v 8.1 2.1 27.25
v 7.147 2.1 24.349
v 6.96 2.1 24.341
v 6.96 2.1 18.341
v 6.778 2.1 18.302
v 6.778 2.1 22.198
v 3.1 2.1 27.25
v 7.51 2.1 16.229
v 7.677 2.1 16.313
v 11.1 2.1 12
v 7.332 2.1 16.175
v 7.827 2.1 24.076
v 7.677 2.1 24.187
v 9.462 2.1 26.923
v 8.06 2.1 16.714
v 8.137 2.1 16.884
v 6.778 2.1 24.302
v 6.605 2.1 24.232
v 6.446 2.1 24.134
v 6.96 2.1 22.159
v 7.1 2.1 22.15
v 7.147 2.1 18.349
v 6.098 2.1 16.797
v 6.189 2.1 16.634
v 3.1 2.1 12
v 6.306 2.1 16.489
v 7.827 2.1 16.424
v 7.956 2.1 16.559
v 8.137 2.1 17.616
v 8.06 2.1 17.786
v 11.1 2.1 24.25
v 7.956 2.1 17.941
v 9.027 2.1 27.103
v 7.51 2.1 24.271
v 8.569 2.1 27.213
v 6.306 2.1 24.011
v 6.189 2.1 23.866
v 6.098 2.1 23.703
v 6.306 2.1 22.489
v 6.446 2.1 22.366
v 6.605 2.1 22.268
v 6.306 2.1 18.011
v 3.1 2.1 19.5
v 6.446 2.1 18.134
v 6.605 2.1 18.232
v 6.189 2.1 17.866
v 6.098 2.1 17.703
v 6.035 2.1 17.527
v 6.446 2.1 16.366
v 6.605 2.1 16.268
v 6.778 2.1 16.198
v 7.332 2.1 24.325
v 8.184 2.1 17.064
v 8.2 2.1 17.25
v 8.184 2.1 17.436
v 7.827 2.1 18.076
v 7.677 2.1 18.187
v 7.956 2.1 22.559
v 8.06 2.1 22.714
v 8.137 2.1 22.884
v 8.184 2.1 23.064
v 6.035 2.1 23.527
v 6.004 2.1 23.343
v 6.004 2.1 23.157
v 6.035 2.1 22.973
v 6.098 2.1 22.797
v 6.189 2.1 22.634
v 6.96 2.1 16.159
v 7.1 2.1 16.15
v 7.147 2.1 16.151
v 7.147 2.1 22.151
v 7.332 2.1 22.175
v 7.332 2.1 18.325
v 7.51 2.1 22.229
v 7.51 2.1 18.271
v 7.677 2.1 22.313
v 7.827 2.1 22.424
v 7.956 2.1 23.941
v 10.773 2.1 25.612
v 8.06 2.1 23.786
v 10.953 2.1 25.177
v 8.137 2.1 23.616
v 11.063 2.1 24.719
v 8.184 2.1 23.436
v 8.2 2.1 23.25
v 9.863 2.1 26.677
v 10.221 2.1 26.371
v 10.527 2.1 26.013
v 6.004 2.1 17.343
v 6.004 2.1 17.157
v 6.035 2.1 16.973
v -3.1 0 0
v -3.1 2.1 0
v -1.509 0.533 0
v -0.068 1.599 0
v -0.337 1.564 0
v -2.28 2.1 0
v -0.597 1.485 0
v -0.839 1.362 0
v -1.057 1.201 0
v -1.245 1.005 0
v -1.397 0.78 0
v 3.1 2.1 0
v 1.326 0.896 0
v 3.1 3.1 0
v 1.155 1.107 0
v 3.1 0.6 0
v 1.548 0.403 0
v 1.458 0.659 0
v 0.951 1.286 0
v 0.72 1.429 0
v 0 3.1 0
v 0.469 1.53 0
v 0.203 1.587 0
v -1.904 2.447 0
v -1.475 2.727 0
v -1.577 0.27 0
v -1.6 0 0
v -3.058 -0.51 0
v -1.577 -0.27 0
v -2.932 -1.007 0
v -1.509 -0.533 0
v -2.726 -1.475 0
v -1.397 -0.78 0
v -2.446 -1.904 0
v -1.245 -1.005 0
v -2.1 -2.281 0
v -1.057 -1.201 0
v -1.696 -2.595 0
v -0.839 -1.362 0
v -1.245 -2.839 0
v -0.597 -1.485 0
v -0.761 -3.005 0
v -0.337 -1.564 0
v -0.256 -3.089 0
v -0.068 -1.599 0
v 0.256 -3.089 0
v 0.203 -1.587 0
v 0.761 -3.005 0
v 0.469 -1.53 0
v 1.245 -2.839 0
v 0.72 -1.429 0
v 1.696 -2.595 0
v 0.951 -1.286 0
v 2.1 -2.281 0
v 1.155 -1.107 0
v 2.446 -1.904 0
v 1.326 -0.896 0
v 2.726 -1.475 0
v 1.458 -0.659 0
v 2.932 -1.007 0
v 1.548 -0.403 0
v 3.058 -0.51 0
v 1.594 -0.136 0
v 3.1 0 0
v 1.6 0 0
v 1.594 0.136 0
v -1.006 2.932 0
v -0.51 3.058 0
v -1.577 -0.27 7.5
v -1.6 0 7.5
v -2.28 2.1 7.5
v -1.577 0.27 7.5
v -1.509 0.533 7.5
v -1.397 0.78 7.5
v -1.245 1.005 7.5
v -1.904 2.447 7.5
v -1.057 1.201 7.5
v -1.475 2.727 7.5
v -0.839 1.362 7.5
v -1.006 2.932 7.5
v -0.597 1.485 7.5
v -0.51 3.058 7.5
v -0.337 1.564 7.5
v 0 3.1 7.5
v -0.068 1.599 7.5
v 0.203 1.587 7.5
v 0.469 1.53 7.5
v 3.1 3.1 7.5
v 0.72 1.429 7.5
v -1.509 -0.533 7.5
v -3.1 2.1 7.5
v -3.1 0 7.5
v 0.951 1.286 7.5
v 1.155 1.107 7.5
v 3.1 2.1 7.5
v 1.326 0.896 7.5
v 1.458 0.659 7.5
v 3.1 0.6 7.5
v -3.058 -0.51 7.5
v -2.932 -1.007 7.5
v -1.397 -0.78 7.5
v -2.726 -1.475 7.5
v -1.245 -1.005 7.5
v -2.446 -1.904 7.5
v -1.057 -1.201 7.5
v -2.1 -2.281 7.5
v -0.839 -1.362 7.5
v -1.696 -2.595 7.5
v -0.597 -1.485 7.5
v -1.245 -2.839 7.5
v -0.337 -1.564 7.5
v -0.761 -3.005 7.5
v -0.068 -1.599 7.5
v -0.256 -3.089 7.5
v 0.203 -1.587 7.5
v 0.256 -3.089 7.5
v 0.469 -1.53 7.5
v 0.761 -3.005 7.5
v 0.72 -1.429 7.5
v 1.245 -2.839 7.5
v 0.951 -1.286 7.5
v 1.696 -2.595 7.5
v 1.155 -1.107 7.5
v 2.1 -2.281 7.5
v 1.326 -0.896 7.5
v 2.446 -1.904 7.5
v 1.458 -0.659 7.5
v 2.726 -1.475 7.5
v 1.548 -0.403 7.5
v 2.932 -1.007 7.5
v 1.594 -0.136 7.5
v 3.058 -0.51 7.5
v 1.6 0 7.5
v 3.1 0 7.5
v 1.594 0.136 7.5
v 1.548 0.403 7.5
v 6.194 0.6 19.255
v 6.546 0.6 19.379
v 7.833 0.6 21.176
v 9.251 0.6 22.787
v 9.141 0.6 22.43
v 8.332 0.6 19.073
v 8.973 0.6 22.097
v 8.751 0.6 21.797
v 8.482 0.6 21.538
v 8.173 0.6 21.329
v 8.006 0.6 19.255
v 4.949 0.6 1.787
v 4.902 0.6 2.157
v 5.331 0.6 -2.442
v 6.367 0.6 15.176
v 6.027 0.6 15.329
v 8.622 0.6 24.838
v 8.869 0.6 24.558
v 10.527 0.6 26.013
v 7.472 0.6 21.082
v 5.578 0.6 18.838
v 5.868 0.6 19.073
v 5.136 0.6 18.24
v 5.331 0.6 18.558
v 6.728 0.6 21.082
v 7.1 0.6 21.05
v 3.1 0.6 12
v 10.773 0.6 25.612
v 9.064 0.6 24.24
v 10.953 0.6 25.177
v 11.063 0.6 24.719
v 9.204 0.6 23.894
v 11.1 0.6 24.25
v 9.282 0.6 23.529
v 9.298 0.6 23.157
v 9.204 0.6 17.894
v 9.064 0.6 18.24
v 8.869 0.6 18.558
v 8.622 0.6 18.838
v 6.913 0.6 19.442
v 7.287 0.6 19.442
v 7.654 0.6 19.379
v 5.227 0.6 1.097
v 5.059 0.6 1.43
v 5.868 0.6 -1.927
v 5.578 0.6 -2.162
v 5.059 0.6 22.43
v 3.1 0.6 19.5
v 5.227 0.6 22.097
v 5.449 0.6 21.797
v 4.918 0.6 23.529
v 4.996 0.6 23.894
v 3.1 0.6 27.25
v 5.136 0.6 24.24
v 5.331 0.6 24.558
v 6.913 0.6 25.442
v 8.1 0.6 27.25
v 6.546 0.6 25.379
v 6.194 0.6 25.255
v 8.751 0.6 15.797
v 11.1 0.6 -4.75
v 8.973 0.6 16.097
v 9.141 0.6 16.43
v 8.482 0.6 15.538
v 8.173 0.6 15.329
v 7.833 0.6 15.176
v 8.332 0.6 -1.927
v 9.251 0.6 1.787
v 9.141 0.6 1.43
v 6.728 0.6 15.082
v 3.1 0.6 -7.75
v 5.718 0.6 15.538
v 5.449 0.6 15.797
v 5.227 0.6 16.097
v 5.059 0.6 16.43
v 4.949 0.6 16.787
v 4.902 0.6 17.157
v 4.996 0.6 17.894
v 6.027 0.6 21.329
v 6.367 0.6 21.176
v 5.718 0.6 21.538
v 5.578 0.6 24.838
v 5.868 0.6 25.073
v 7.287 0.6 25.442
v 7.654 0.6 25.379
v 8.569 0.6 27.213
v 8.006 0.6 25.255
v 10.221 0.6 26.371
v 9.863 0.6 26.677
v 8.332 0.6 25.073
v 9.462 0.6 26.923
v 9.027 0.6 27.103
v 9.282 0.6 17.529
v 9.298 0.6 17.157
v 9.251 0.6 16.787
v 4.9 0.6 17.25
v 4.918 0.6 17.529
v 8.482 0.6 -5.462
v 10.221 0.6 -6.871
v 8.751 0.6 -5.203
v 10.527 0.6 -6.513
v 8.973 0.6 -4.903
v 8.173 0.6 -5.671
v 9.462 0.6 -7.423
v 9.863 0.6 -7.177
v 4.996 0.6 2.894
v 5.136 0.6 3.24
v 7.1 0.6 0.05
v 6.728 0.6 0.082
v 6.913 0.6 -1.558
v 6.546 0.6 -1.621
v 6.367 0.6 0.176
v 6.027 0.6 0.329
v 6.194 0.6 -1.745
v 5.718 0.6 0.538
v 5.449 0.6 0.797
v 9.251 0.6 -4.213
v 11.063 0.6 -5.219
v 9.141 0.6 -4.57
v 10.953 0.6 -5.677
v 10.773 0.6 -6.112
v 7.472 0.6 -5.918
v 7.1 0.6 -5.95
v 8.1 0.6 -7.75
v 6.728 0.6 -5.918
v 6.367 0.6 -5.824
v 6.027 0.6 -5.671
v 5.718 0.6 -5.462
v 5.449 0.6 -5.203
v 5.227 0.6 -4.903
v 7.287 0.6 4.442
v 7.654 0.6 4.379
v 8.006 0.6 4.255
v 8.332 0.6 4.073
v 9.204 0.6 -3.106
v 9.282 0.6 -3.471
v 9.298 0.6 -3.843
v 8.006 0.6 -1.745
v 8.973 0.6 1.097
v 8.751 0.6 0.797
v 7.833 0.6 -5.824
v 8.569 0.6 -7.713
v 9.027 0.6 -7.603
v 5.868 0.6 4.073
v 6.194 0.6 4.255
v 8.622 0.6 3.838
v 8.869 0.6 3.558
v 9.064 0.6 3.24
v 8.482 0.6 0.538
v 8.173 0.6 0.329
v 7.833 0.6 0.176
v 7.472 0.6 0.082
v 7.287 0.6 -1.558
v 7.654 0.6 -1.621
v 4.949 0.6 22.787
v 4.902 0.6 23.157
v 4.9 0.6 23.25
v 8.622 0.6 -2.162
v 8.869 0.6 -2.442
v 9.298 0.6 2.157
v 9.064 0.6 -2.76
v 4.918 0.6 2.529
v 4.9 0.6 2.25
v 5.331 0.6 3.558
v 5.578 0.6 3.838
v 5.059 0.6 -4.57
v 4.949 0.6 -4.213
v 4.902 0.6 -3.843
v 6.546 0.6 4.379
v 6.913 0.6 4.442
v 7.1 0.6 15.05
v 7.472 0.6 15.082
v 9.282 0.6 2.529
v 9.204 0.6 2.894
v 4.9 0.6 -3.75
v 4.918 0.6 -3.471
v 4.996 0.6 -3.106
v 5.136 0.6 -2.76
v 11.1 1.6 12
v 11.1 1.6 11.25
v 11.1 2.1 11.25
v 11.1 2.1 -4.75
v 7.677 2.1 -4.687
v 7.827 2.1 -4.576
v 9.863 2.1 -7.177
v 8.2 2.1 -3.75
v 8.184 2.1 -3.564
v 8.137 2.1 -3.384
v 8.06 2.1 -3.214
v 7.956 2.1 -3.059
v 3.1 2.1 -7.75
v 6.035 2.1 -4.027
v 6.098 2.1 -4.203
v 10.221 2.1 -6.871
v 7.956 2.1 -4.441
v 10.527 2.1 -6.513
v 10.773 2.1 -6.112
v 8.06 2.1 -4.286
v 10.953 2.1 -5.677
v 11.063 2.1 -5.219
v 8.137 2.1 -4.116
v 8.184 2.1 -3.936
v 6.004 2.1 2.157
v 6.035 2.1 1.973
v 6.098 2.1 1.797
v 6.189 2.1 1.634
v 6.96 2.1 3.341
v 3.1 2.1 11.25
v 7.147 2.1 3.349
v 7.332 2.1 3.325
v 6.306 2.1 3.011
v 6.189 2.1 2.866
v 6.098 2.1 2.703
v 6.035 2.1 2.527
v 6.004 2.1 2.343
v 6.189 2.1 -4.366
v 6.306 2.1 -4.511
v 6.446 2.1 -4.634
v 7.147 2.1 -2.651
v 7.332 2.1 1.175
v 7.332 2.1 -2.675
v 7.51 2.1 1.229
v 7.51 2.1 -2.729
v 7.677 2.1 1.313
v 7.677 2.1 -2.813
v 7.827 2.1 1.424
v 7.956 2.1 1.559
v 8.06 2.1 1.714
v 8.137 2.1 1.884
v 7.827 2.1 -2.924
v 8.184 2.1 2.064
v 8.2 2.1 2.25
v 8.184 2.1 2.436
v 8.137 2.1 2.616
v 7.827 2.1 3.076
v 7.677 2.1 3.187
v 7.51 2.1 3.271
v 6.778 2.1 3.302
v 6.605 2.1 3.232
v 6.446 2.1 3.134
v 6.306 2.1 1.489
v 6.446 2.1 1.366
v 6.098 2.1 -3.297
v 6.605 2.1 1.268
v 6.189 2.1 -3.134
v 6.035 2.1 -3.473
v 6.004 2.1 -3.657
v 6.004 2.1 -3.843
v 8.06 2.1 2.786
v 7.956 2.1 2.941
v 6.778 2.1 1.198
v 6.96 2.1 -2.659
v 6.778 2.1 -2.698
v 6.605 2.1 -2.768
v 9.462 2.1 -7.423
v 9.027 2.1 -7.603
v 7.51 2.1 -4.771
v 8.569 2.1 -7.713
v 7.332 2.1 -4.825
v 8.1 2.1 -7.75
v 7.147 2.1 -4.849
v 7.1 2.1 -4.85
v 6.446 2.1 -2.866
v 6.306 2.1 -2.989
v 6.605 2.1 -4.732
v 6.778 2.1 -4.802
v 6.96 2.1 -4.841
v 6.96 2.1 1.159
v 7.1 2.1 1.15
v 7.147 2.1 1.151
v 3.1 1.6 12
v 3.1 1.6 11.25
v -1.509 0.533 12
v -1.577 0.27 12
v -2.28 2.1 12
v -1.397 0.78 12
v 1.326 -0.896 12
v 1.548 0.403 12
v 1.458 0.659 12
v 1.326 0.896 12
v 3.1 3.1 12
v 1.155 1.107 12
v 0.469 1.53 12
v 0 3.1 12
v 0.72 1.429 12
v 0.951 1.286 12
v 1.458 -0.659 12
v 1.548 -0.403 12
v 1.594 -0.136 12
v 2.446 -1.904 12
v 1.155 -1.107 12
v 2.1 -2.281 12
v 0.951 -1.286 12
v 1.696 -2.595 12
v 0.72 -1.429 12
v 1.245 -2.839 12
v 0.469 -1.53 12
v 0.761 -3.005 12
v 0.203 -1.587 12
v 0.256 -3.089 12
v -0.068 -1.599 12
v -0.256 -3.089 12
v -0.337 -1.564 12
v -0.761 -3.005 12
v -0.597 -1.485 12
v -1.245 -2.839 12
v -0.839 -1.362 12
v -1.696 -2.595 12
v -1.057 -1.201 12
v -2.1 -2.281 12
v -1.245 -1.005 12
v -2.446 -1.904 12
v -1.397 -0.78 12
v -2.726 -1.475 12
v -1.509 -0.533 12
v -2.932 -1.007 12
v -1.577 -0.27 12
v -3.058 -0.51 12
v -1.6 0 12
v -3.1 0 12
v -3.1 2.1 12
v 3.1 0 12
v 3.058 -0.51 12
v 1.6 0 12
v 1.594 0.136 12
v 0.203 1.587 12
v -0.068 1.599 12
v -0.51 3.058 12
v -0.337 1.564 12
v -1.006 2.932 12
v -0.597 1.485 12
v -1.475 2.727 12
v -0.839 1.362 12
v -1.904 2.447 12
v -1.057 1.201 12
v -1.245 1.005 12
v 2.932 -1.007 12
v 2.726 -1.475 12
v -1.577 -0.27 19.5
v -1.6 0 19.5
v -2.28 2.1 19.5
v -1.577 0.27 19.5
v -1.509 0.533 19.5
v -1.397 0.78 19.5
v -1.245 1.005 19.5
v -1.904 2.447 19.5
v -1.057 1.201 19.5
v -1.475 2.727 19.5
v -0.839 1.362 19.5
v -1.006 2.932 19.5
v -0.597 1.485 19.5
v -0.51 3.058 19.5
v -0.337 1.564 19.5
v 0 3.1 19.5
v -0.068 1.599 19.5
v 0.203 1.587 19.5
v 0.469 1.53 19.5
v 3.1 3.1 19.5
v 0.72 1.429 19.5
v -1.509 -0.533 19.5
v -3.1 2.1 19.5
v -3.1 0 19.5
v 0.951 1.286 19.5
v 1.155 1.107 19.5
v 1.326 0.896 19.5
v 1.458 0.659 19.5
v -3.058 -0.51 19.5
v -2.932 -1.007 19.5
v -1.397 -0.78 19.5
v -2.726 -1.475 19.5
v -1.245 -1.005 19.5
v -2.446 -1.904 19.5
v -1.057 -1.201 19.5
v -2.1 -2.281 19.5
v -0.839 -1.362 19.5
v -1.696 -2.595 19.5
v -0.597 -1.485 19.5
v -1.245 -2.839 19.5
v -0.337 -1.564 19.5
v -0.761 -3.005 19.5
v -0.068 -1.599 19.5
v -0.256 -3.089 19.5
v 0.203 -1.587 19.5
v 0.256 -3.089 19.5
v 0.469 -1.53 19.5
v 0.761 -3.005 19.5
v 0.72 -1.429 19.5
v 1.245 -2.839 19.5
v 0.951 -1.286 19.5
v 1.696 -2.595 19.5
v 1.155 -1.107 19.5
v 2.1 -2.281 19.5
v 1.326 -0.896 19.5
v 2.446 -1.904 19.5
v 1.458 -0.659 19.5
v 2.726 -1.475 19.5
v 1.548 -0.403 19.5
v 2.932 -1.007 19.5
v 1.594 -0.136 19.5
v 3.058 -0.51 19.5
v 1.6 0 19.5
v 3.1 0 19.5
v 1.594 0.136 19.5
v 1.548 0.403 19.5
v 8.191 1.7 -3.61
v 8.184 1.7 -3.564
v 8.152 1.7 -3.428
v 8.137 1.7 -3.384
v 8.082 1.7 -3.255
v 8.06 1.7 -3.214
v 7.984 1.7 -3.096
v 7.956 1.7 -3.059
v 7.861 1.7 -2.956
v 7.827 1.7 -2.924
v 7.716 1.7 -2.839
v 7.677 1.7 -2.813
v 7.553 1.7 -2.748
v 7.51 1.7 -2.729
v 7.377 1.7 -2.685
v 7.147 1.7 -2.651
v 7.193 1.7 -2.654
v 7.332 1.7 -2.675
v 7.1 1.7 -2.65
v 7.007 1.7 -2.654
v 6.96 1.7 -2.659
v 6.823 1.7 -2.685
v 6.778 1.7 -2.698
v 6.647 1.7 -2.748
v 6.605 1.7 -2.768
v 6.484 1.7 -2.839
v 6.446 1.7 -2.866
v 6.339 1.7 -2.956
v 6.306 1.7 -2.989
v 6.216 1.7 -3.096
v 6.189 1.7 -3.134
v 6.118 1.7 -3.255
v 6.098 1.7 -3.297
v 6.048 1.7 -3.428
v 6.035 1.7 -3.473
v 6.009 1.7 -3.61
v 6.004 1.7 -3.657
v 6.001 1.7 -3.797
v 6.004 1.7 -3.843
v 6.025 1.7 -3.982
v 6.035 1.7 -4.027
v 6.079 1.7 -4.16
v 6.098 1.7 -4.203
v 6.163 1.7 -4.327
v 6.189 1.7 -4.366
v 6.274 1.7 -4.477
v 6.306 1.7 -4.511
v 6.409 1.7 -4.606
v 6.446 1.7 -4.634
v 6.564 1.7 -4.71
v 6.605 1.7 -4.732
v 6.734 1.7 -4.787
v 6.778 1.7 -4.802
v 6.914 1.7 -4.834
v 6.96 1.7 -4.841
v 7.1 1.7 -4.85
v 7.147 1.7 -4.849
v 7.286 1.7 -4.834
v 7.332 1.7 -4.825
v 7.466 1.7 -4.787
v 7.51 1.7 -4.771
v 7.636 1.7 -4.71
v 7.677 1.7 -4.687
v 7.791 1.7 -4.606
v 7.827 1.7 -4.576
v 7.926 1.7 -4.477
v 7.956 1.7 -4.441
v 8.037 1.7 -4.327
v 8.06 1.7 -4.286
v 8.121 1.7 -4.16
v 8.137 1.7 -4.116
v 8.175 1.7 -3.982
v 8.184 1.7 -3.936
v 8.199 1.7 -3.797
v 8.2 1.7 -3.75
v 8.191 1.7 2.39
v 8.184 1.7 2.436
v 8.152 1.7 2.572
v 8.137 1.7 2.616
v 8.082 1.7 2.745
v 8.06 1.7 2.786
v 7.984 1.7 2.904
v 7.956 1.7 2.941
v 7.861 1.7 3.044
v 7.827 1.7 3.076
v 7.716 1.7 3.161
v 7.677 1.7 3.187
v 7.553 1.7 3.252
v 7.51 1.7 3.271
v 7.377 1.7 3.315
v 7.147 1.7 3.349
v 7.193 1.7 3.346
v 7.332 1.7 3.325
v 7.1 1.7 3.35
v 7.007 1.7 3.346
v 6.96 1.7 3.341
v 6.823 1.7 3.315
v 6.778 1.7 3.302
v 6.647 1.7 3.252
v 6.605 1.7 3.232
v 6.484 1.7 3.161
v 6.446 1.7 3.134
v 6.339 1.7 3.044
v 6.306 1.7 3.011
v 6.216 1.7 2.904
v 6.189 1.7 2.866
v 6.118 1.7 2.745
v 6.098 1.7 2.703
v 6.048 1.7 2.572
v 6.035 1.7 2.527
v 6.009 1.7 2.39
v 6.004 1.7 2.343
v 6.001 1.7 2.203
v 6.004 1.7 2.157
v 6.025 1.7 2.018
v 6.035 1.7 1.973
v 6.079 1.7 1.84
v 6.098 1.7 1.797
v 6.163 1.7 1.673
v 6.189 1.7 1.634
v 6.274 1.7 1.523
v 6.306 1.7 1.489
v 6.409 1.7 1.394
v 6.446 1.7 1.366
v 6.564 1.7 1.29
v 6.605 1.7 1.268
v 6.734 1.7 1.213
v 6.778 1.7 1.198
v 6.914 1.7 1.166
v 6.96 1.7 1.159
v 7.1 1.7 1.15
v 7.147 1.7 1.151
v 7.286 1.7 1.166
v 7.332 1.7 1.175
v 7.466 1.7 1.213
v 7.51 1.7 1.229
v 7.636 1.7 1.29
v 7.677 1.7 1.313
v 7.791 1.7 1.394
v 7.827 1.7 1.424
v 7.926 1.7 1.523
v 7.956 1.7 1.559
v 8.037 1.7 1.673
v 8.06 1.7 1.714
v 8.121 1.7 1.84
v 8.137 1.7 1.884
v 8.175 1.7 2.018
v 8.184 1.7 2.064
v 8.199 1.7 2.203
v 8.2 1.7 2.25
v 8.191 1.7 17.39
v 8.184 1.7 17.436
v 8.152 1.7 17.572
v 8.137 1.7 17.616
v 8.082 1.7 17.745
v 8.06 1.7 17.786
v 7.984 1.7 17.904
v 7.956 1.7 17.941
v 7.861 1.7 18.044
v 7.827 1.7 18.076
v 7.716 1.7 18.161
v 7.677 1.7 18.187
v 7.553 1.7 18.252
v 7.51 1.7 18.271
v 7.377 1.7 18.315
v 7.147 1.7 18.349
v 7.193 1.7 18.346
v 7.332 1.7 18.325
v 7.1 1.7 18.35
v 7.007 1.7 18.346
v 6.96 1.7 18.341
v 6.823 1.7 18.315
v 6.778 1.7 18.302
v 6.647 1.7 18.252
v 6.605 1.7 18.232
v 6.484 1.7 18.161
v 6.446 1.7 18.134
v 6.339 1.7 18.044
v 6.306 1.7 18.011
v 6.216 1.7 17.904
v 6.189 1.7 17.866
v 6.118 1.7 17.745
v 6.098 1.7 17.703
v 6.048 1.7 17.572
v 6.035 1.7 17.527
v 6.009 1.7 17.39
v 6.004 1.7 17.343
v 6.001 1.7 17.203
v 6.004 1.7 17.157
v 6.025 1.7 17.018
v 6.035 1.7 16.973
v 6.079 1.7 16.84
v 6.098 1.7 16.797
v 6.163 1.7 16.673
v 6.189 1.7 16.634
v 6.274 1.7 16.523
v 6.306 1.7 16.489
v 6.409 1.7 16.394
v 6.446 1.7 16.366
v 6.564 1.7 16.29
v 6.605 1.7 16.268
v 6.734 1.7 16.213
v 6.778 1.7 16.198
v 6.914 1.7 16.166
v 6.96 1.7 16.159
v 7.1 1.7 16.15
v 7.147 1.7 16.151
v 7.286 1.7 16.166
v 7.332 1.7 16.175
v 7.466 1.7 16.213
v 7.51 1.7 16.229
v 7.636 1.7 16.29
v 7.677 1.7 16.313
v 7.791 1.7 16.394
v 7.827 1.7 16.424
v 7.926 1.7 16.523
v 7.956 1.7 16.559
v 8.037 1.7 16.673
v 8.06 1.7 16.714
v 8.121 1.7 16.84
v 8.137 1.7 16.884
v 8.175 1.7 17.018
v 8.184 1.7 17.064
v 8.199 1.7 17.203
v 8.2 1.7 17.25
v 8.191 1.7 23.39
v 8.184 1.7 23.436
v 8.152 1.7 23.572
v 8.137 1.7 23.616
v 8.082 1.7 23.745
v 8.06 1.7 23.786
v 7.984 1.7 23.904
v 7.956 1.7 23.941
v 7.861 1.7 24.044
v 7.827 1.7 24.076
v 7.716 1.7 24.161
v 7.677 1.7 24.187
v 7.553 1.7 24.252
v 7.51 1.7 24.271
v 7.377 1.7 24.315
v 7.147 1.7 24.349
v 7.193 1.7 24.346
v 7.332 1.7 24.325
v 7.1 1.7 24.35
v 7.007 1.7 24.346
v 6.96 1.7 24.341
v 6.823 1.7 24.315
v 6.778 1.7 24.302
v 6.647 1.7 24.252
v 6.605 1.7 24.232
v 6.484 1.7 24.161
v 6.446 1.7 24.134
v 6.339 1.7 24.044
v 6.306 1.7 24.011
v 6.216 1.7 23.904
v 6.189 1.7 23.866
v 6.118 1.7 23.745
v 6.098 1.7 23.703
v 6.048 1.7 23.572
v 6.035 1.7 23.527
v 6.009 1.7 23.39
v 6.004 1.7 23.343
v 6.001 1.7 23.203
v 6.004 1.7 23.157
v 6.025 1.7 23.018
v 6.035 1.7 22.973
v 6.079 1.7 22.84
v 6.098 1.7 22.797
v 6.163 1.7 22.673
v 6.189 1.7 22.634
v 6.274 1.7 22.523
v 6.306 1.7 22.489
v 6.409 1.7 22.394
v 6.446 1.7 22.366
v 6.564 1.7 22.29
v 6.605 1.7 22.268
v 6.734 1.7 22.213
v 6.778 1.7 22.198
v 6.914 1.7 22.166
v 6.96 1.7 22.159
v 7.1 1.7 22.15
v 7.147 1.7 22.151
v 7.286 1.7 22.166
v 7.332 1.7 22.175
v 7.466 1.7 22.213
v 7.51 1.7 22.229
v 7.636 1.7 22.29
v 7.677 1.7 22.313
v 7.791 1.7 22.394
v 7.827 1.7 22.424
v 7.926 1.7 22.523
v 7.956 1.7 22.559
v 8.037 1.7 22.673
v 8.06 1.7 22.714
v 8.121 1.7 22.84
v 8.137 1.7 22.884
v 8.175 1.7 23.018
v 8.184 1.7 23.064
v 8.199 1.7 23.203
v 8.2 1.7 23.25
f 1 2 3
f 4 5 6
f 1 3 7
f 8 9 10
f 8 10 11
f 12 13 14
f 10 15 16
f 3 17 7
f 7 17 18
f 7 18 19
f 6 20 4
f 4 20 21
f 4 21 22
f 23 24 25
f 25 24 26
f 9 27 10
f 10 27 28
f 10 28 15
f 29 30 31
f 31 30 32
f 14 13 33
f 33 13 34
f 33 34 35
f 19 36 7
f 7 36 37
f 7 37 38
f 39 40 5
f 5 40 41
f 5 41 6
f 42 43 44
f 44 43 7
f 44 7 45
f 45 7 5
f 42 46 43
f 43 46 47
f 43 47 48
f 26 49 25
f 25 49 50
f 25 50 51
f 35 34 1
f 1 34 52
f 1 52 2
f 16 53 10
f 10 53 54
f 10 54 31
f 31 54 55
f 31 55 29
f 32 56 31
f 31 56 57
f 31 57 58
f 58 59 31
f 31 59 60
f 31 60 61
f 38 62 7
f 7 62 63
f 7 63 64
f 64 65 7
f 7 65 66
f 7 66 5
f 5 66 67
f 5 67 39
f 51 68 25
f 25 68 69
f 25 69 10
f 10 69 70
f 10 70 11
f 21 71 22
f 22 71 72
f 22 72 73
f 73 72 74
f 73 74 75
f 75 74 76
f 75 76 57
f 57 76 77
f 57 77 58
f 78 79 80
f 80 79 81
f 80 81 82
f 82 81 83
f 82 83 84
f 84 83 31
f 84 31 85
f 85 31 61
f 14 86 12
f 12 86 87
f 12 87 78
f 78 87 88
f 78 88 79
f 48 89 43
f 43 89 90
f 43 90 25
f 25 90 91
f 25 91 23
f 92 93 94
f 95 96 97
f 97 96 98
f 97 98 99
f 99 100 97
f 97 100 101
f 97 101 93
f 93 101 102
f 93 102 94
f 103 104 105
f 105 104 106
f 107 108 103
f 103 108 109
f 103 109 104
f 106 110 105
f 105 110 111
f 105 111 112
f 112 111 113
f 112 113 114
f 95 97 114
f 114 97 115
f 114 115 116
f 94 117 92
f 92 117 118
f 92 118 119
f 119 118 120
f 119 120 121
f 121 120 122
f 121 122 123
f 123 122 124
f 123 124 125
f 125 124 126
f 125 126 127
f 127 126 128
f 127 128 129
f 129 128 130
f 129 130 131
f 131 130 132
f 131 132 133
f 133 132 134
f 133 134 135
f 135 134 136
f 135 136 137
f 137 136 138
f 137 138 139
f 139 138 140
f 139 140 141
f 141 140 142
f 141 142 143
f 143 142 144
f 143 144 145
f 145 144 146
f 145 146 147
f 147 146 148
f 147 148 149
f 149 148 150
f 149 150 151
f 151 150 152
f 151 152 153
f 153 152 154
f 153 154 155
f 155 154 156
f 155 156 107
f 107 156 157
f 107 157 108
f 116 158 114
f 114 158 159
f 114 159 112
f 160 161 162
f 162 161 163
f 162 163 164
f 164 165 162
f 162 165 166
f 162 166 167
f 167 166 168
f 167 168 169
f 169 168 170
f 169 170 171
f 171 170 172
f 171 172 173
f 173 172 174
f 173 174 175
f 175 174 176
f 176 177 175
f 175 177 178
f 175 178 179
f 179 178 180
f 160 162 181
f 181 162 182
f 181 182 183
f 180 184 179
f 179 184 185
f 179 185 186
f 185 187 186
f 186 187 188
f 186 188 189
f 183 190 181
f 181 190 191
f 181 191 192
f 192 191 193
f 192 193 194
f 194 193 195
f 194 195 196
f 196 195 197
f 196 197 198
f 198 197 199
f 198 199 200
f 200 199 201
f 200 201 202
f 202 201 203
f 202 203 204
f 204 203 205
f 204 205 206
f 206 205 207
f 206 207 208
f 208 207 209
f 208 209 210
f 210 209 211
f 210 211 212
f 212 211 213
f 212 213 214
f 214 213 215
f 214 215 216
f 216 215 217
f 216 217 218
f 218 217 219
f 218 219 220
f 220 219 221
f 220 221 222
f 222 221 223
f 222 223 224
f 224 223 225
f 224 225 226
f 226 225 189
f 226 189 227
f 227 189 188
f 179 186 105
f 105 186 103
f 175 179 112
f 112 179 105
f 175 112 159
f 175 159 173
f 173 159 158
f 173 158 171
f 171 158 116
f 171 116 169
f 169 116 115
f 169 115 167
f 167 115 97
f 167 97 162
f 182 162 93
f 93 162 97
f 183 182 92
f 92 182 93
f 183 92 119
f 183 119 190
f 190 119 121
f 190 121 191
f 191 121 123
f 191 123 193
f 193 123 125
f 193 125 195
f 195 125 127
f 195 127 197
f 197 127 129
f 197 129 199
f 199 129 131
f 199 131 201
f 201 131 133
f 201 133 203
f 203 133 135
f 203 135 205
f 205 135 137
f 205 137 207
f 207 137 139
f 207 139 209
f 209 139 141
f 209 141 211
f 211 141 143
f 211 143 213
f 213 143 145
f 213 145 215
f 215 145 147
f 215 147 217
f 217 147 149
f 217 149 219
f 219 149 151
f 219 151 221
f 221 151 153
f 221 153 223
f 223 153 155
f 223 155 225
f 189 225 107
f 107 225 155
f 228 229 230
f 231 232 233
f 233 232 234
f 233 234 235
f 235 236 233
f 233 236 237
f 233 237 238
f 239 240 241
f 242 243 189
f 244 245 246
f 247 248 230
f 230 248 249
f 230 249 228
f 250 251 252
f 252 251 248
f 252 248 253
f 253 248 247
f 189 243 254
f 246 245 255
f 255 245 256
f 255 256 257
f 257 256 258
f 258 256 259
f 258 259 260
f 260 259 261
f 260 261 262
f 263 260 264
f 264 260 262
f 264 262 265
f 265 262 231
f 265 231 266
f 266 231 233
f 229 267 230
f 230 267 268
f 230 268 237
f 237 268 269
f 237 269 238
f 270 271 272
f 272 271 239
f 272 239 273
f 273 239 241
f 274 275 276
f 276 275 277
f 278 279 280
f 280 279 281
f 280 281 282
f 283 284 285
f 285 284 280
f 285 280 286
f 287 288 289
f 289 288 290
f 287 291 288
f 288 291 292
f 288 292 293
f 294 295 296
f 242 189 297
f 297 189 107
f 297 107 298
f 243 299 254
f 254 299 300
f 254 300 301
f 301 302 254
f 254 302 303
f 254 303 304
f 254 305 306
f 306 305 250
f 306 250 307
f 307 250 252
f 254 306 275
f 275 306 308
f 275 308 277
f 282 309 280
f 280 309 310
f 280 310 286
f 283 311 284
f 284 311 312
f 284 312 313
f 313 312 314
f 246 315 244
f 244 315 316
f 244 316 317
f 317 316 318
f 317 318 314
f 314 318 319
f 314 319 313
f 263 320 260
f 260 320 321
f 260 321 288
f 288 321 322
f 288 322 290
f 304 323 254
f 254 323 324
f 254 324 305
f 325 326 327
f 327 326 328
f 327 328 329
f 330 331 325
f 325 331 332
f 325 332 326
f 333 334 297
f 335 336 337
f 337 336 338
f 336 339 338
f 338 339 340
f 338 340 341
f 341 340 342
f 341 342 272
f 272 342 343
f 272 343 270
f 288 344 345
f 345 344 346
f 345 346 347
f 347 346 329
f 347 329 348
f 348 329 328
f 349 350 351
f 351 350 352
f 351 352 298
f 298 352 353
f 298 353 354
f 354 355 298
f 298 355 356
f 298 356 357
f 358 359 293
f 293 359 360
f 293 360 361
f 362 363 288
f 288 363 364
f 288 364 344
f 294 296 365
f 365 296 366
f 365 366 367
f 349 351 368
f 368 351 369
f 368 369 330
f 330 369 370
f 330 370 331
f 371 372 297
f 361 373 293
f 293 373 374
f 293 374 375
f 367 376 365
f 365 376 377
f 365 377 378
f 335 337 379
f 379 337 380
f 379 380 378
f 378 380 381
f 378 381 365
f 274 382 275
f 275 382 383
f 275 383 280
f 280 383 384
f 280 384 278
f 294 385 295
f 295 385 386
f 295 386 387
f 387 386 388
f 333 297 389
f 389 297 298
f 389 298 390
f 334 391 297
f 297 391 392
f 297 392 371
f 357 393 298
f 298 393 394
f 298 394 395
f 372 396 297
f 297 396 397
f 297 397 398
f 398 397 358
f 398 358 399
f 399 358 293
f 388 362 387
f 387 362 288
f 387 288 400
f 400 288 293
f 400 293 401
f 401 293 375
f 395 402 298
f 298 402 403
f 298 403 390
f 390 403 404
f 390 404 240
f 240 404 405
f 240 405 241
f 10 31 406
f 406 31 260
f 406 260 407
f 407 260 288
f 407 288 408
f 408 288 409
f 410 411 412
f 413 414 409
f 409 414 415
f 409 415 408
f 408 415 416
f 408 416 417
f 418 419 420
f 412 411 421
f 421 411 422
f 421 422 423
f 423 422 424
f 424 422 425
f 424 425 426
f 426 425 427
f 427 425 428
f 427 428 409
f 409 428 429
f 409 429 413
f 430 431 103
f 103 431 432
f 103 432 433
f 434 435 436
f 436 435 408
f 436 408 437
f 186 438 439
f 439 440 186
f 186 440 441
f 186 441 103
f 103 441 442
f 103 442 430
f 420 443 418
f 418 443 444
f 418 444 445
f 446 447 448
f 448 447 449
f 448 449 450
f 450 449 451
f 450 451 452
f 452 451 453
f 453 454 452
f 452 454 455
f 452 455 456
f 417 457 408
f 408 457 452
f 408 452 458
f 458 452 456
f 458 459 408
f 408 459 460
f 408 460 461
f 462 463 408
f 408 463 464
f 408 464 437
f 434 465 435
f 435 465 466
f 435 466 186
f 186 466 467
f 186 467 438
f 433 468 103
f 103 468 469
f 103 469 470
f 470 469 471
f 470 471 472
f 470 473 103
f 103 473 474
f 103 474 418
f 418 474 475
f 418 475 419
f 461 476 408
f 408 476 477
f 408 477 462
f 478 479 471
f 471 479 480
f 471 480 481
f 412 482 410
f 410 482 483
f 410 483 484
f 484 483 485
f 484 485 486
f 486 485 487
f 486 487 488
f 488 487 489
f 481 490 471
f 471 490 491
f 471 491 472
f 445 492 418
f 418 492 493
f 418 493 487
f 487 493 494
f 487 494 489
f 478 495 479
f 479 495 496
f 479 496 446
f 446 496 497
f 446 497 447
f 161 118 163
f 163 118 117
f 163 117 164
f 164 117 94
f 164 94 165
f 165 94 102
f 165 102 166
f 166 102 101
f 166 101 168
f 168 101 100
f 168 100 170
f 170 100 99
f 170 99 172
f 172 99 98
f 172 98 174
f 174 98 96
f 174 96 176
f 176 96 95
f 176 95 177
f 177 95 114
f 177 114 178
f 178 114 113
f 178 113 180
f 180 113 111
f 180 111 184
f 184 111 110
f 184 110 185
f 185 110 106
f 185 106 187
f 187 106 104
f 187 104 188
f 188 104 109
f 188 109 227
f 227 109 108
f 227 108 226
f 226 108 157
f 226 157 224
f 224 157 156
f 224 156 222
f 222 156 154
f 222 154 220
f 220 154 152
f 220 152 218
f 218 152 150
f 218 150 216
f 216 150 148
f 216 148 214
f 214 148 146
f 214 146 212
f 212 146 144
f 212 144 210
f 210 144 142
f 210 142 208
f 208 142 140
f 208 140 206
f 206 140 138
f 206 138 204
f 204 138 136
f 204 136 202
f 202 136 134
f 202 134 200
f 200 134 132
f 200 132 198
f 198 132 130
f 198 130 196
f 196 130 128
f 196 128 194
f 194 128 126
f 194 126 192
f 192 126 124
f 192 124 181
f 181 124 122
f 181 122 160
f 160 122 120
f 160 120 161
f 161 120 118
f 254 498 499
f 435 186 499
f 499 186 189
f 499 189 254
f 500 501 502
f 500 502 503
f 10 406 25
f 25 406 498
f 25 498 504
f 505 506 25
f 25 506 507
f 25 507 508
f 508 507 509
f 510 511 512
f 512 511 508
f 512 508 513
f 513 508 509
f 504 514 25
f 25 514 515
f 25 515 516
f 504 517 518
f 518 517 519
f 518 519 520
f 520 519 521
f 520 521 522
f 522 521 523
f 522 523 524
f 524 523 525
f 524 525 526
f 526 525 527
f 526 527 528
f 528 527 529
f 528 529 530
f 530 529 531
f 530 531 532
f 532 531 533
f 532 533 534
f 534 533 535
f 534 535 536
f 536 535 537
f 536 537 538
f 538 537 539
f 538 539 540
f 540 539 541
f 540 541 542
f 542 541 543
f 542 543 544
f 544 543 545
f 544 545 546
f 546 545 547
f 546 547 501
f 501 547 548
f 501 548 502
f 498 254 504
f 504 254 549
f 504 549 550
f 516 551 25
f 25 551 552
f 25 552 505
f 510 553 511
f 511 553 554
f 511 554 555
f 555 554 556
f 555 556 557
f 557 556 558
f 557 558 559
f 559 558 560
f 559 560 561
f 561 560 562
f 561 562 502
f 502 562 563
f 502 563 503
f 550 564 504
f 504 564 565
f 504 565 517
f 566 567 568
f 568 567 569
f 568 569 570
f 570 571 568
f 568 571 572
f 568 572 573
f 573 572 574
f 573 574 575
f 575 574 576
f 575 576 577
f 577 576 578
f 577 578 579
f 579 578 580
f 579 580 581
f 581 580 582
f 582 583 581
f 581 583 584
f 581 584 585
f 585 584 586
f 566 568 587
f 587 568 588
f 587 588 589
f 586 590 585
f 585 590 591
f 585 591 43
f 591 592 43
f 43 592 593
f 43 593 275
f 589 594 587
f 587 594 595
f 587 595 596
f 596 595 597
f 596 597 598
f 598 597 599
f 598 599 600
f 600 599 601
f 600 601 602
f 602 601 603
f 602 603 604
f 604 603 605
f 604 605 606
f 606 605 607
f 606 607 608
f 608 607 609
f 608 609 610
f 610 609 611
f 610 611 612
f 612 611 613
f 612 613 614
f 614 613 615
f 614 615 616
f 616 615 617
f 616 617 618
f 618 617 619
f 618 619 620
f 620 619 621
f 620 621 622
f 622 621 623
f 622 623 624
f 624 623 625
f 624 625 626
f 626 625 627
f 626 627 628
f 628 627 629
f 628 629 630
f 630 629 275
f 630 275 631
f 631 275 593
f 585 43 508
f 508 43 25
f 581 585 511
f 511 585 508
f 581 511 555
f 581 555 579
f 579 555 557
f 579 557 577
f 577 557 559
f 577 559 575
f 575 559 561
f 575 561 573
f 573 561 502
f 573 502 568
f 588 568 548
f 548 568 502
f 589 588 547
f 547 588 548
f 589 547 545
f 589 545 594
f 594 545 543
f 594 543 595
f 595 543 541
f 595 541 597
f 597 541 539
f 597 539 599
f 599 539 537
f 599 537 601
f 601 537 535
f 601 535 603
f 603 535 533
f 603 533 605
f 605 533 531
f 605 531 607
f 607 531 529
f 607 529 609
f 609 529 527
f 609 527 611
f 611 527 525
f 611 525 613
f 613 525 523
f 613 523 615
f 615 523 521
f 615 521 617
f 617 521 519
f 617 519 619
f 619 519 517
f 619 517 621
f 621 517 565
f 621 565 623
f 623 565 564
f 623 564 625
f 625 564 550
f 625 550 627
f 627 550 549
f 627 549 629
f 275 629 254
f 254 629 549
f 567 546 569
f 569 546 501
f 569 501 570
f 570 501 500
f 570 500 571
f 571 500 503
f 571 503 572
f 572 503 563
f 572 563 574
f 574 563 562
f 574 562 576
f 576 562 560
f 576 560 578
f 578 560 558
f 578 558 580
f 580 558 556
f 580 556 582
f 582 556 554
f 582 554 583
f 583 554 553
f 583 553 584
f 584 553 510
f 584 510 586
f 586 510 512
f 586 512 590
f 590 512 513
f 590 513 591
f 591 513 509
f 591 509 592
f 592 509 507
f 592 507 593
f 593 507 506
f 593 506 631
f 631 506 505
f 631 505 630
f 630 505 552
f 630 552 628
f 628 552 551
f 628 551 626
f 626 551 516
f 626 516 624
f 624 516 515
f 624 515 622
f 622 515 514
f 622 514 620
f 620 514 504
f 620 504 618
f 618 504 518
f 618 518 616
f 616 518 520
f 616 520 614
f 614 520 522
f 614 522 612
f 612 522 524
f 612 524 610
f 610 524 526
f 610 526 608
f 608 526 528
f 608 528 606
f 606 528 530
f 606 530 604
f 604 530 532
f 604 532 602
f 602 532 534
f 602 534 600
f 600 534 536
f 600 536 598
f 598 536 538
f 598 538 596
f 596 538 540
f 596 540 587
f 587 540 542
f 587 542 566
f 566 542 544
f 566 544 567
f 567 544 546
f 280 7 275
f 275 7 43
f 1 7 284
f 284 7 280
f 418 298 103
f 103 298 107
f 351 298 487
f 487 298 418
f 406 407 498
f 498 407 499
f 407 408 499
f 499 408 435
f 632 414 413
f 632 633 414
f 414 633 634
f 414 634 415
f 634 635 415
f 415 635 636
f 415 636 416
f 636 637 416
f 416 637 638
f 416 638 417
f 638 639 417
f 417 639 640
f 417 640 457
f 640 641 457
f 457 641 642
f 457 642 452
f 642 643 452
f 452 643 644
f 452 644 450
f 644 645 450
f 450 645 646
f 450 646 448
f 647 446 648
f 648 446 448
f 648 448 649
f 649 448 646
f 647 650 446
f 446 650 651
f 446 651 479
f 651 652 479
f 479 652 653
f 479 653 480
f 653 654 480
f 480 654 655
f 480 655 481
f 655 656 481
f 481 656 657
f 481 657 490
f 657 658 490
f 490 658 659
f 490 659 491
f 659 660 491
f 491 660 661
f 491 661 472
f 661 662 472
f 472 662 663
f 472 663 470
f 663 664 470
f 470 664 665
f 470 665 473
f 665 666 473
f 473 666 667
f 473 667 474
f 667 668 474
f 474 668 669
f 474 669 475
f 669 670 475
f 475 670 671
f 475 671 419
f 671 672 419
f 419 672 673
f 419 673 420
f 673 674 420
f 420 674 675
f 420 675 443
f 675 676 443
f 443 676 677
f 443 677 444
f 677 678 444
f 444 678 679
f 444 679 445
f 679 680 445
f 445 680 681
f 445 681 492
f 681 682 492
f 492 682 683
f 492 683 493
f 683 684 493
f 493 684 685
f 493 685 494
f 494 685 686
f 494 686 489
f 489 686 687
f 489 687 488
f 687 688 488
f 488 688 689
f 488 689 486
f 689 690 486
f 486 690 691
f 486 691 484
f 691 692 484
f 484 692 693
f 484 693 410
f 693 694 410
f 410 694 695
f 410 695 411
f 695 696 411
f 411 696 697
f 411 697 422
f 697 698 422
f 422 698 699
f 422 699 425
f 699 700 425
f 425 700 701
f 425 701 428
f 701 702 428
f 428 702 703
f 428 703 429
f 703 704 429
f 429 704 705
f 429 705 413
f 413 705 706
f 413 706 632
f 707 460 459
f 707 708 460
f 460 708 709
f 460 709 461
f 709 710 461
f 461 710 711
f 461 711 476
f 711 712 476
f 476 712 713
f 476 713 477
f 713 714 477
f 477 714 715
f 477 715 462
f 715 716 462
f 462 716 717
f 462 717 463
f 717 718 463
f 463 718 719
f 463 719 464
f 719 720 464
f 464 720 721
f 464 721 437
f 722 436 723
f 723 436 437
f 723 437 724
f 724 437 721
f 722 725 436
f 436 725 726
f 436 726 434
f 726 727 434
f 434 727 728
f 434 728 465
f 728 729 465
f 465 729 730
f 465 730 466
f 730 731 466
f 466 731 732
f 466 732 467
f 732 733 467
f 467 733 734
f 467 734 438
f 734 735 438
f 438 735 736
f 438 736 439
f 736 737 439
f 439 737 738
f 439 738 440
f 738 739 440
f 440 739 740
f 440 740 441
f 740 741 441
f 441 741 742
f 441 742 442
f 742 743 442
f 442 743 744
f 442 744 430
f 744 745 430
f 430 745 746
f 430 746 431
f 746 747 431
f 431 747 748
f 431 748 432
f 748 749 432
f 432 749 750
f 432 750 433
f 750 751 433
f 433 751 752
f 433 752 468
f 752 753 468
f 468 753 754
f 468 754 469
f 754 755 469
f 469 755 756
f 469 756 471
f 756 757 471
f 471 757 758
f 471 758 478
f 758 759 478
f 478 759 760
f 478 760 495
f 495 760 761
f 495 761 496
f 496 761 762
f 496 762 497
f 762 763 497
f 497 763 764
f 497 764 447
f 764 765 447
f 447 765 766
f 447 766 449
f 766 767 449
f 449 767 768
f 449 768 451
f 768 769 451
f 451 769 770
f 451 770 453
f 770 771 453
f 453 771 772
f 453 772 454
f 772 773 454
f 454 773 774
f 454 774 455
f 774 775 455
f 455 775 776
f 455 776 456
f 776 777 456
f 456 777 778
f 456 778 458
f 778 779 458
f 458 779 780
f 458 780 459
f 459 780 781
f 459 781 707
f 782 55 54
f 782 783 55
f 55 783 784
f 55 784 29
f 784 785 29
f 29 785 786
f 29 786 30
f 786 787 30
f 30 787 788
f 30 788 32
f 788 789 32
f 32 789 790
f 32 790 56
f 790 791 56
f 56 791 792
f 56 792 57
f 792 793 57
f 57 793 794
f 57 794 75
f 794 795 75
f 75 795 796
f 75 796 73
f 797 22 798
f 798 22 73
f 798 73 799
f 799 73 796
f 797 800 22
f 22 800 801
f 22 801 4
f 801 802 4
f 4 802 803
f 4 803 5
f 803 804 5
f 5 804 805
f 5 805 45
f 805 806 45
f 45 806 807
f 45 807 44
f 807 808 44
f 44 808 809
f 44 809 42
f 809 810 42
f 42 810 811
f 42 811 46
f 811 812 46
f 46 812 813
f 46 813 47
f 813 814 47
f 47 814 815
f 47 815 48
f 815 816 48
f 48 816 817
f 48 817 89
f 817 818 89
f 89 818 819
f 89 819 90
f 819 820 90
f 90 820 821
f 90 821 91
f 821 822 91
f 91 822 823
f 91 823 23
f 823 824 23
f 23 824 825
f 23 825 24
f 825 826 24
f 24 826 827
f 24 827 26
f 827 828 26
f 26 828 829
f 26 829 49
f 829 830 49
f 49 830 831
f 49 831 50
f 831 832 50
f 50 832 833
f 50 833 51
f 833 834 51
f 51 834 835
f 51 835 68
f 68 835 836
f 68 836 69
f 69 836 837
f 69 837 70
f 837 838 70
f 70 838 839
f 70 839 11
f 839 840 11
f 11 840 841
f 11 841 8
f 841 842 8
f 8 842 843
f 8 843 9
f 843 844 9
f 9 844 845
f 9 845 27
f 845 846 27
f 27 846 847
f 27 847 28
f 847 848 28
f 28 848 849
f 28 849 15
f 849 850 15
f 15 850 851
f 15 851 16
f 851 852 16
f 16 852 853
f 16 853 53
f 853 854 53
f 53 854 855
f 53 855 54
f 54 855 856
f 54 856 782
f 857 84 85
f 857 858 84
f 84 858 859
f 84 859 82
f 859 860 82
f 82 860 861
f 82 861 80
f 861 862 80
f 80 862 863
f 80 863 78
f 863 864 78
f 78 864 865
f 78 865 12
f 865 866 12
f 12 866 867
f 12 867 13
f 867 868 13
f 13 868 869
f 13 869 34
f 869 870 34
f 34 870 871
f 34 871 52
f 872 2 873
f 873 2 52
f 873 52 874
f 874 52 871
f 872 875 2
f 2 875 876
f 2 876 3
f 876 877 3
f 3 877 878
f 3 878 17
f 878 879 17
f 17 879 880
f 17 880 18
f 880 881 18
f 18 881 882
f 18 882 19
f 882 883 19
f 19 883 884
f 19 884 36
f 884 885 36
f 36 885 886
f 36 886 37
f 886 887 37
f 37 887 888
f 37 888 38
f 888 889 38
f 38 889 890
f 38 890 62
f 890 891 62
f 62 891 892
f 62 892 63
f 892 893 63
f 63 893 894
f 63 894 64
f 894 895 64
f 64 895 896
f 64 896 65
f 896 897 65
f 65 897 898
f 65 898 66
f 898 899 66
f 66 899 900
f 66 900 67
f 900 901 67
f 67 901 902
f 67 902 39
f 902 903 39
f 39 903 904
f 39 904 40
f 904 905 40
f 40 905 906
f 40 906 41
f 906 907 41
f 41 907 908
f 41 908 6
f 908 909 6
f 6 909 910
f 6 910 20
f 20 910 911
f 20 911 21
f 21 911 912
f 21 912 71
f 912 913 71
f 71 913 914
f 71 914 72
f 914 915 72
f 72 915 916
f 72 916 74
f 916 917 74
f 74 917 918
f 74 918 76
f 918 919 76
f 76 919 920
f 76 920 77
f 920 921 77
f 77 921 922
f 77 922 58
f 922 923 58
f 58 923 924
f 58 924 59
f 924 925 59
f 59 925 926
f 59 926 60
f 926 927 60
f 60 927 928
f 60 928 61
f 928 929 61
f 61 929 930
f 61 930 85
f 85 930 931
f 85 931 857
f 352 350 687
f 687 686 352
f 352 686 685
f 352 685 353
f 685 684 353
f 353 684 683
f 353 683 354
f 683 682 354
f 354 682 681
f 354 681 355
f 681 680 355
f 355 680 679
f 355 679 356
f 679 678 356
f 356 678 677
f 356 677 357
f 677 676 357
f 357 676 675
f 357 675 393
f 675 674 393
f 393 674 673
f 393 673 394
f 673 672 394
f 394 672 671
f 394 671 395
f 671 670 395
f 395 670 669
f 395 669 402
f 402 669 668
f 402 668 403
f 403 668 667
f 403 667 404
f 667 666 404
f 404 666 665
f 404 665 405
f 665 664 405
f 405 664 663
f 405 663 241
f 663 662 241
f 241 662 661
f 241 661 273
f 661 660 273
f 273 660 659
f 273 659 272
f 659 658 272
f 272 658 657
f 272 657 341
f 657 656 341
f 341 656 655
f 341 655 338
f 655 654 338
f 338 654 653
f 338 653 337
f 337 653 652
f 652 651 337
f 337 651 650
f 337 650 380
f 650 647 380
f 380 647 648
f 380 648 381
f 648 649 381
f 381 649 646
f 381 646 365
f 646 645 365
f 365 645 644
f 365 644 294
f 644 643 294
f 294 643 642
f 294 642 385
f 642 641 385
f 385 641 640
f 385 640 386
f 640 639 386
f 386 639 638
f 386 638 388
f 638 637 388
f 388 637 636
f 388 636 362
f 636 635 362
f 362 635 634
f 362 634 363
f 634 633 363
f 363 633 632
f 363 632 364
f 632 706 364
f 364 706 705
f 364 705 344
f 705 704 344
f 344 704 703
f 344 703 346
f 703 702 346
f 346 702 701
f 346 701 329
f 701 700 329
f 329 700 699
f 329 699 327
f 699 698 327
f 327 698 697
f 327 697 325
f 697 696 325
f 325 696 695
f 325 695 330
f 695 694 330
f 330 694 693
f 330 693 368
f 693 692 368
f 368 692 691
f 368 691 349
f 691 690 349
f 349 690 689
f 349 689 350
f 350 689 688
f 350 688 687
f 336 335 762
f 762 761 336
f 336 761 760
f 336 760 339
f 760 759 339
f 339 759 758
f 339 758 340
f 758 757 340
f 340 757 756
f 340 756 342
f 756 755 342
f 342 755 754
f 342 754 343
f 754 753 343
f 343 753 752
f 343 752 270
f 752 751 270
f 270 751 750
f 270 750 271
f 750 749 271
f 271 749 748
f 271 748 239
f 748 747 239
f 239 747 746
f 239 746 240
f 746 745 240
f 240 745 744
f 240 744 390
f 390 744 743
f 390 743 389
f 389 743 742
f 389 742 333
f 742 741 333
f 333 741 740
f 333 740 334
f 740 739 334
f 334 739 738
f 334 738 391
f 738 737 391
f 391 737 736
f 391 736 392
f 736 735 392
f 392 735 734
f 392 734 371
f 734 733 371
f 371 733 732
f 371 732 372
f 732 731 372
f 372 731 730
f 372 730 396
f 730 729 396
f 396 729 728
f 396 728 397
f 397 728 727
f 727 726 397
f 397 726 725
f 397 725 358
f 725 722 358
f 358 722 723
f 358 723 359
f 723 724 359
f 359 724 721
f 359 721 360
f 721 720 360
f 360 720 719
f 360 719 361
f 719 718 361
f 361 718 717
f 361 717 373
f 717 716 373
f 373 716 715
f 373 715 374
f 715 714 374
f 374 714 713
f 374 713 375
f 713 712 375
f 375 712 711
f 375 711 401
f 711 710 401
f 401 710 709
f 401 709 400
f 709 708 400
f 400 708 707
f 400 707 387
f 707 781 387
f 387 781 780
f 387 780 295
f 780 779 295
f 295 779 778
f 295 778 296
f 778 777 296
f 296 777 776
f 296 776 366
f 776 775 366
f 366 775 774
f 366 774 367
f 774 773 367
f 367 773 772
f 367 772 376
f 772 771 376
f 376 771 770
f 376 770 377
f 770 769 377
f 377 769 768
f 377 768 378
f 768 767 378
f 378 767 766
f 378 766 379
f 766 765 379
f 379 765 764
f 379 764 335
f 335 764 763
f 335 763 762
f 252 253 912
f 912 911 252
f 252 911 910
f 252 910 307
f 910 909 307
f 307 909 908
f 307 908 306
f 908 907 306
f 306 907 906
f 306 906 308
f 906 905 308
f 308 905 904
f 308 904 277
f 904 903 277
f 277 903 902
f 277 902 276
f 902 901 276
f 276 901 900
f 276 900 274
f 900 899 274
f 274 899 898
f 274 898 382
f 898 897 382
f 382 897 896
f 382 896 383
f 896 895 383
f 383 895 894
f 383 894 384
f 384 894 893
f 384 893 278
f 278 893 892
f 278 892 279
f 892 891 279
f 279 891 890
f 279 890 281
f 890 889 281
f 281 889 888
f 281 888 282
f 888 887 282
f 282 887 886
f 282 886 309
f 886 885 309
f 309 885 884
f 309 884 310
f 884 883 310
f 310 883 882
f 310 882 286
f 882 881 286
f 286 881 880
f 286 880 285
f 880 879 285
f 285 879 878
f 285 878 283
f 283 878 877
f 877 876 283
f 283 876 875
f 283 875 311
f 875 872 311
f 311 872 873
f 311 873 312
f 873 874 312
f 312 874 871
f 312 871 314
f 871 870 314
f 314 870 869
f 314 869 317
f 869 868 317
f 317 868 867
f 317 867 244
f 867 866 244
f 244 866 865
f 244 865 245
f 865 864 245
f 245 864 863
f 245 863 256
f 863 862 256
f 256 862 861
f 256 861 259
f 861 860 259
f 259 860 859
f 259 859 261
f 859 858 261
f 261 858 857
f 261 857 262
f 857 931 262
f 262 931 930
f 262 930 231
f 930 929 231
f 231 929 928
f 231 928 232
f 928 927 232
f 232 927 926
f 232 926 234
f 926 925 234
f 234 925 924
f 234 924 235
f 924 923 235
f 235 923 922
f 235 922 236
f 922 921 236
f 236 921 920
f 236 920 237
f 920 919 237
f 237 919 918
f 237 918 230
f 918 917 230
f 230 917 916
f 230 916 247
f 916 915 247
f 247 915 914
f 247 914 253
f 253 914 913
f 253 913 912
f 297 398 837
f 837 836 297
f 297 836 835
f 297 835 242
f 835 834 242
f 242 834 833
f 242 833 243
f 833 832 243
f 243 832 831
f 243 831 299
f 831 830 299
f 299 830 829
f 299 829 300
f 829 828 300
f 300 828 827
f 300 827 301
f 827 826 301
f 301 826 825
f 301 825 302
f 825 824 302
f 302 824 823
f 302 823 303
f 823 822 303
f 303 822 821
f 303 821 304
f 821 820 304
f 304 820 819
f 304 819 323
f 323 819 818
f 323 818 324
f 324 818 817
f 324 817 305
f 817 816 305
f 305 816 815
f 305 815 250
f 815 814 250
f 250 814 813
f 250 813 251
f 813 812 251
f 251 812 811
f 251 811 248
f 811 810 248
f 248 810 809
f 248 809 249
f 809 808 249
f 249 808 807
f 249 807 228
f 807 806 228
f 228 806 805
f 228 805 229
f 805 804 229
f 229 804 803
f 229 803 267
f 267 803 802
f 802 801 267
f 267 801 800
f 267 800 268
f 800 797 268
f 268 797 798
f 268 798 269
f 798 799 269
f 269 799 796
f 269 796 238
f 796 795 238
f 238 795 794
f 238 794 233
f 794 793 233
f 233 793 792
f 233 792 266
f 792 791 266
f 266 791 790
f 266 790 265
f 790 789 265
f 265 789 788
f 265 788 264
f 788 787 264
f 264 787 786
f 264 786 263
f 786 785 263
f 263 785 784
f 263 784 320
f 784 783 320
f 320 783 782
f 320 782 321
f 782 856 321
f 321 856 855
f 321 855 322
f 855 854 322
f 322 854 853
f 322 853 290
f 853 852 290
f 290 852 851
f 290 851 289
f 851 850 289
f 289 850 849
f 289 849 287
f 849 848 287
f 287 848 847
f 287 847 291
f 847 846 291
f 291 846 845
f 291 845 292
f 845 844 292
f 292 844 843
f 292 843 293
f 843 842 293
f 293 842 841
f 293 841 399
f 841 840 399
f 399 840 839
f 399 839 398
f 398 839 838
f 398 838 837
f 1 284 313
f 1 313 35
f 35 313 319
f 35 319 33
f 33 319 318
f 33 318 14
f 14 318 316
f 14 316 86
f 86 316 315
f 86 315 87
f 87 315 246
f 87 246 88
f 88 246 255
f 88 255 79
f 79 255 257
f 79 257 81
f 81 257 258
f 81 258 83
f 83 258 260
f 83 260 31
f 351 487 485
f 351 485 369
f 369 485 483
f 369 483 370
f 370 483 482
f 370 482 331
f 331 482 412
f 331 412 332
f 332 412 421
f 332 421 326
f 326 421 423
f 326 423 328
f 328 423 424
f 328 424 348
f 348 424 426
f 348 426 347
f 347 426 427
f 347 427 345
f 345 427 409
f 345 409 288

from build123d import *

# Parameters (mm, degrees)
SKETCH2_R           = 1.6
BOSS_EXTRUDE1_DEPTH = 7.5
SKETCH4_W           = 8
SKETCH4_H           = 1.5
BOSS_EXTRUDE3_DEPTH = 4.5
SKETCH5_R           = 1.6
BOSS_EXTRUDE4_DEPTH = 7.5
SKETCH6_W           = 8
SKETCH6_H           = 1.5
BOSS_EXTRUDE5_DEPTH = 7.75
SKETCH7_W           = 8
SKETCH7_H           = 1.5
BOSS_EXTRUDE6_DEPTH = 7.75
SKETCH8_W           = 0.75
SKETCH8_H           = 0.5
CUT_EXTRUDE1_DEPTH  = 9
SKETCH9_R           = 1.1
CUT_EXTRUDE2_DEPTH  = 3.5
CHAMFER1_SIZE       = 1.1
FILLET1_R           = 3


with BuildPart() as part:
    # Sketch2 → Boss-Extrude1 (new body)
    with BuildSketch(Plane.XY):
        with BuildLine():
            Line((3.1, 2.1), (11.1, 2.1))
            Line((11.1, 2.1), (11.1, 0.6))
            Line((11.1, 0.6), (3.1, 0.6))
            Line((3.1, 0.6), (3.1, 0))
            ThreePointArc((3.1, 0), (0, -3.1), (-3.1, 0))
            Line((-3.1, 0), (-3.1, 2.1))
            Line((-3.1, 2.1), (-2.28035085, 2.1))
            ThreePointArc((-2.28035085, 2.1), (-1.24498996, 2.839013913), (0, 3.1))
            Line((0, 3.1), (3.1, 3.1))
            Line((3.1, 3.1), (3.1, 2.1))
        make_face()
        Circle(SKETCH2_R, mode=Mode.SUBTRACT)
    extrude(amount=BOSS_EXTRUDE1_DEPTH)

    # Sketch4 → Boss-Extrude3 (add)
    with BuildSketch(Plane.XY.offset(7.5)):
        with Locations((7.1, 1.35)):
            Rectangle(SKETCH4_W, SKETCH4_H)
    extrude(amount=BOSS_EXTRUDE3_DEPTH)

    # Sketch5 → Boss-Extrude4 (add)
    with BuildSketch(Plane.XY.offset(12)):
        with BuildLine():
            Line((11.1, 0.6), (11.1, 2.1))
            Line((11.1, 2.1), (3.1, 2.1))
            Line((3.1, 2.1), (3.1, 3.1))
            Line((3.1, 3.1), (0, 3.1))
            ThreePointArc((0, 3.1), (-1.24498996, 2.839013913), (-2.28035085, 2.1))
            Line((-2.28035085, 2.1), (-3.1, 2.1))
            Line((-3.1, 2.1), (-3.1, 0))
            ThreePointArc((-3.1, 0), (0, -3.1), (3.1, 0))
            Line((3.1, 0), (3.1, 0.6))
            Line((3.1, 0.6), (11.1, 0.6))
        make_face()
        Circle(SKETCH5_R, mode=Mode.SUBTRACT)
    extrude(amount=BOSS_EXTRUDE4_DEPTH)

    # Sketch6 → Boss-Extrude5 (add)
    with BuildSketch(Plane.XY.offset(19.5)):
        with Locations((7.1, 1.35)):
            Rectangle(SKETCH6_W, SKETCH6_H)
    extrude(amount=BOSS_EXTRUDE5_DEPTH)

    # Sketch7 → Boss-Extrude6 (add)
    with BuildSketch(Plane(origin=(0, 0, 0), x_dir=(-1, 0, 0), z_dir=(0, 0, -1))):
        with Locations((-7.1, 1.35)):
            Rectangle(SKETCH7_W, SKETCH7_H)
    extrude(amount=BOSS_EXTRUDE6_DEPTH)

    # Sketch8 → Cut-Extrude1 (cut, through all)
    with BuildSketch(Plane.ZY.offset(-3.1)):
        with Locations((11.625, 1.85)):
            Rectangle(SKETCH8_W, SKETCH8_H)
    extrude(amount=-CUT_EXTRUDE1_DEPTH, mode=Mode.SUBTRACT)

    # Sketch9 → Cut-Extrude2 (cut, through all)
    with BuildSketch(Plane.XZ.offset(-0.6)):
        with Locations((7.1, 23.25)):
            Circle(SKETCH9_R)
        with Locations((7.1, 17.25)):
            Circle(SKETCH9_R)
        with Locations((7.1, 2.25)):
            Circle(SKETCH9_R)
        with Locations((7.1, -3.75)):
            Circle(SKETCH9_R)
    extrude(amount=-CUT_EXTRUDE2_DEPTH, mode=Mode.SUBTRACT)

    # Chamfer1
    chamfer1_edges = [part.edges().sort_by_distance(p)[0] for p in [
        (6, 0.6, 23.25),
        (6, 0.6, 17.25),
        (6, 0.6, 2.25),
        (6, 0.6, -3.75),
    ]]
    chamfer(chamfer1_edges, length=CHAMFER1_SIZE)

    # Fillet1
    fillet1_edges = [part.edges().sort_by_distance(p)[0] for p in [
        (11.1, 1.35, 27.25),
        (11.1, 1.35, -7.75),
    ]]
    fillet(fillet1_edges, radius=FILLET1_R)


solid = part.part
